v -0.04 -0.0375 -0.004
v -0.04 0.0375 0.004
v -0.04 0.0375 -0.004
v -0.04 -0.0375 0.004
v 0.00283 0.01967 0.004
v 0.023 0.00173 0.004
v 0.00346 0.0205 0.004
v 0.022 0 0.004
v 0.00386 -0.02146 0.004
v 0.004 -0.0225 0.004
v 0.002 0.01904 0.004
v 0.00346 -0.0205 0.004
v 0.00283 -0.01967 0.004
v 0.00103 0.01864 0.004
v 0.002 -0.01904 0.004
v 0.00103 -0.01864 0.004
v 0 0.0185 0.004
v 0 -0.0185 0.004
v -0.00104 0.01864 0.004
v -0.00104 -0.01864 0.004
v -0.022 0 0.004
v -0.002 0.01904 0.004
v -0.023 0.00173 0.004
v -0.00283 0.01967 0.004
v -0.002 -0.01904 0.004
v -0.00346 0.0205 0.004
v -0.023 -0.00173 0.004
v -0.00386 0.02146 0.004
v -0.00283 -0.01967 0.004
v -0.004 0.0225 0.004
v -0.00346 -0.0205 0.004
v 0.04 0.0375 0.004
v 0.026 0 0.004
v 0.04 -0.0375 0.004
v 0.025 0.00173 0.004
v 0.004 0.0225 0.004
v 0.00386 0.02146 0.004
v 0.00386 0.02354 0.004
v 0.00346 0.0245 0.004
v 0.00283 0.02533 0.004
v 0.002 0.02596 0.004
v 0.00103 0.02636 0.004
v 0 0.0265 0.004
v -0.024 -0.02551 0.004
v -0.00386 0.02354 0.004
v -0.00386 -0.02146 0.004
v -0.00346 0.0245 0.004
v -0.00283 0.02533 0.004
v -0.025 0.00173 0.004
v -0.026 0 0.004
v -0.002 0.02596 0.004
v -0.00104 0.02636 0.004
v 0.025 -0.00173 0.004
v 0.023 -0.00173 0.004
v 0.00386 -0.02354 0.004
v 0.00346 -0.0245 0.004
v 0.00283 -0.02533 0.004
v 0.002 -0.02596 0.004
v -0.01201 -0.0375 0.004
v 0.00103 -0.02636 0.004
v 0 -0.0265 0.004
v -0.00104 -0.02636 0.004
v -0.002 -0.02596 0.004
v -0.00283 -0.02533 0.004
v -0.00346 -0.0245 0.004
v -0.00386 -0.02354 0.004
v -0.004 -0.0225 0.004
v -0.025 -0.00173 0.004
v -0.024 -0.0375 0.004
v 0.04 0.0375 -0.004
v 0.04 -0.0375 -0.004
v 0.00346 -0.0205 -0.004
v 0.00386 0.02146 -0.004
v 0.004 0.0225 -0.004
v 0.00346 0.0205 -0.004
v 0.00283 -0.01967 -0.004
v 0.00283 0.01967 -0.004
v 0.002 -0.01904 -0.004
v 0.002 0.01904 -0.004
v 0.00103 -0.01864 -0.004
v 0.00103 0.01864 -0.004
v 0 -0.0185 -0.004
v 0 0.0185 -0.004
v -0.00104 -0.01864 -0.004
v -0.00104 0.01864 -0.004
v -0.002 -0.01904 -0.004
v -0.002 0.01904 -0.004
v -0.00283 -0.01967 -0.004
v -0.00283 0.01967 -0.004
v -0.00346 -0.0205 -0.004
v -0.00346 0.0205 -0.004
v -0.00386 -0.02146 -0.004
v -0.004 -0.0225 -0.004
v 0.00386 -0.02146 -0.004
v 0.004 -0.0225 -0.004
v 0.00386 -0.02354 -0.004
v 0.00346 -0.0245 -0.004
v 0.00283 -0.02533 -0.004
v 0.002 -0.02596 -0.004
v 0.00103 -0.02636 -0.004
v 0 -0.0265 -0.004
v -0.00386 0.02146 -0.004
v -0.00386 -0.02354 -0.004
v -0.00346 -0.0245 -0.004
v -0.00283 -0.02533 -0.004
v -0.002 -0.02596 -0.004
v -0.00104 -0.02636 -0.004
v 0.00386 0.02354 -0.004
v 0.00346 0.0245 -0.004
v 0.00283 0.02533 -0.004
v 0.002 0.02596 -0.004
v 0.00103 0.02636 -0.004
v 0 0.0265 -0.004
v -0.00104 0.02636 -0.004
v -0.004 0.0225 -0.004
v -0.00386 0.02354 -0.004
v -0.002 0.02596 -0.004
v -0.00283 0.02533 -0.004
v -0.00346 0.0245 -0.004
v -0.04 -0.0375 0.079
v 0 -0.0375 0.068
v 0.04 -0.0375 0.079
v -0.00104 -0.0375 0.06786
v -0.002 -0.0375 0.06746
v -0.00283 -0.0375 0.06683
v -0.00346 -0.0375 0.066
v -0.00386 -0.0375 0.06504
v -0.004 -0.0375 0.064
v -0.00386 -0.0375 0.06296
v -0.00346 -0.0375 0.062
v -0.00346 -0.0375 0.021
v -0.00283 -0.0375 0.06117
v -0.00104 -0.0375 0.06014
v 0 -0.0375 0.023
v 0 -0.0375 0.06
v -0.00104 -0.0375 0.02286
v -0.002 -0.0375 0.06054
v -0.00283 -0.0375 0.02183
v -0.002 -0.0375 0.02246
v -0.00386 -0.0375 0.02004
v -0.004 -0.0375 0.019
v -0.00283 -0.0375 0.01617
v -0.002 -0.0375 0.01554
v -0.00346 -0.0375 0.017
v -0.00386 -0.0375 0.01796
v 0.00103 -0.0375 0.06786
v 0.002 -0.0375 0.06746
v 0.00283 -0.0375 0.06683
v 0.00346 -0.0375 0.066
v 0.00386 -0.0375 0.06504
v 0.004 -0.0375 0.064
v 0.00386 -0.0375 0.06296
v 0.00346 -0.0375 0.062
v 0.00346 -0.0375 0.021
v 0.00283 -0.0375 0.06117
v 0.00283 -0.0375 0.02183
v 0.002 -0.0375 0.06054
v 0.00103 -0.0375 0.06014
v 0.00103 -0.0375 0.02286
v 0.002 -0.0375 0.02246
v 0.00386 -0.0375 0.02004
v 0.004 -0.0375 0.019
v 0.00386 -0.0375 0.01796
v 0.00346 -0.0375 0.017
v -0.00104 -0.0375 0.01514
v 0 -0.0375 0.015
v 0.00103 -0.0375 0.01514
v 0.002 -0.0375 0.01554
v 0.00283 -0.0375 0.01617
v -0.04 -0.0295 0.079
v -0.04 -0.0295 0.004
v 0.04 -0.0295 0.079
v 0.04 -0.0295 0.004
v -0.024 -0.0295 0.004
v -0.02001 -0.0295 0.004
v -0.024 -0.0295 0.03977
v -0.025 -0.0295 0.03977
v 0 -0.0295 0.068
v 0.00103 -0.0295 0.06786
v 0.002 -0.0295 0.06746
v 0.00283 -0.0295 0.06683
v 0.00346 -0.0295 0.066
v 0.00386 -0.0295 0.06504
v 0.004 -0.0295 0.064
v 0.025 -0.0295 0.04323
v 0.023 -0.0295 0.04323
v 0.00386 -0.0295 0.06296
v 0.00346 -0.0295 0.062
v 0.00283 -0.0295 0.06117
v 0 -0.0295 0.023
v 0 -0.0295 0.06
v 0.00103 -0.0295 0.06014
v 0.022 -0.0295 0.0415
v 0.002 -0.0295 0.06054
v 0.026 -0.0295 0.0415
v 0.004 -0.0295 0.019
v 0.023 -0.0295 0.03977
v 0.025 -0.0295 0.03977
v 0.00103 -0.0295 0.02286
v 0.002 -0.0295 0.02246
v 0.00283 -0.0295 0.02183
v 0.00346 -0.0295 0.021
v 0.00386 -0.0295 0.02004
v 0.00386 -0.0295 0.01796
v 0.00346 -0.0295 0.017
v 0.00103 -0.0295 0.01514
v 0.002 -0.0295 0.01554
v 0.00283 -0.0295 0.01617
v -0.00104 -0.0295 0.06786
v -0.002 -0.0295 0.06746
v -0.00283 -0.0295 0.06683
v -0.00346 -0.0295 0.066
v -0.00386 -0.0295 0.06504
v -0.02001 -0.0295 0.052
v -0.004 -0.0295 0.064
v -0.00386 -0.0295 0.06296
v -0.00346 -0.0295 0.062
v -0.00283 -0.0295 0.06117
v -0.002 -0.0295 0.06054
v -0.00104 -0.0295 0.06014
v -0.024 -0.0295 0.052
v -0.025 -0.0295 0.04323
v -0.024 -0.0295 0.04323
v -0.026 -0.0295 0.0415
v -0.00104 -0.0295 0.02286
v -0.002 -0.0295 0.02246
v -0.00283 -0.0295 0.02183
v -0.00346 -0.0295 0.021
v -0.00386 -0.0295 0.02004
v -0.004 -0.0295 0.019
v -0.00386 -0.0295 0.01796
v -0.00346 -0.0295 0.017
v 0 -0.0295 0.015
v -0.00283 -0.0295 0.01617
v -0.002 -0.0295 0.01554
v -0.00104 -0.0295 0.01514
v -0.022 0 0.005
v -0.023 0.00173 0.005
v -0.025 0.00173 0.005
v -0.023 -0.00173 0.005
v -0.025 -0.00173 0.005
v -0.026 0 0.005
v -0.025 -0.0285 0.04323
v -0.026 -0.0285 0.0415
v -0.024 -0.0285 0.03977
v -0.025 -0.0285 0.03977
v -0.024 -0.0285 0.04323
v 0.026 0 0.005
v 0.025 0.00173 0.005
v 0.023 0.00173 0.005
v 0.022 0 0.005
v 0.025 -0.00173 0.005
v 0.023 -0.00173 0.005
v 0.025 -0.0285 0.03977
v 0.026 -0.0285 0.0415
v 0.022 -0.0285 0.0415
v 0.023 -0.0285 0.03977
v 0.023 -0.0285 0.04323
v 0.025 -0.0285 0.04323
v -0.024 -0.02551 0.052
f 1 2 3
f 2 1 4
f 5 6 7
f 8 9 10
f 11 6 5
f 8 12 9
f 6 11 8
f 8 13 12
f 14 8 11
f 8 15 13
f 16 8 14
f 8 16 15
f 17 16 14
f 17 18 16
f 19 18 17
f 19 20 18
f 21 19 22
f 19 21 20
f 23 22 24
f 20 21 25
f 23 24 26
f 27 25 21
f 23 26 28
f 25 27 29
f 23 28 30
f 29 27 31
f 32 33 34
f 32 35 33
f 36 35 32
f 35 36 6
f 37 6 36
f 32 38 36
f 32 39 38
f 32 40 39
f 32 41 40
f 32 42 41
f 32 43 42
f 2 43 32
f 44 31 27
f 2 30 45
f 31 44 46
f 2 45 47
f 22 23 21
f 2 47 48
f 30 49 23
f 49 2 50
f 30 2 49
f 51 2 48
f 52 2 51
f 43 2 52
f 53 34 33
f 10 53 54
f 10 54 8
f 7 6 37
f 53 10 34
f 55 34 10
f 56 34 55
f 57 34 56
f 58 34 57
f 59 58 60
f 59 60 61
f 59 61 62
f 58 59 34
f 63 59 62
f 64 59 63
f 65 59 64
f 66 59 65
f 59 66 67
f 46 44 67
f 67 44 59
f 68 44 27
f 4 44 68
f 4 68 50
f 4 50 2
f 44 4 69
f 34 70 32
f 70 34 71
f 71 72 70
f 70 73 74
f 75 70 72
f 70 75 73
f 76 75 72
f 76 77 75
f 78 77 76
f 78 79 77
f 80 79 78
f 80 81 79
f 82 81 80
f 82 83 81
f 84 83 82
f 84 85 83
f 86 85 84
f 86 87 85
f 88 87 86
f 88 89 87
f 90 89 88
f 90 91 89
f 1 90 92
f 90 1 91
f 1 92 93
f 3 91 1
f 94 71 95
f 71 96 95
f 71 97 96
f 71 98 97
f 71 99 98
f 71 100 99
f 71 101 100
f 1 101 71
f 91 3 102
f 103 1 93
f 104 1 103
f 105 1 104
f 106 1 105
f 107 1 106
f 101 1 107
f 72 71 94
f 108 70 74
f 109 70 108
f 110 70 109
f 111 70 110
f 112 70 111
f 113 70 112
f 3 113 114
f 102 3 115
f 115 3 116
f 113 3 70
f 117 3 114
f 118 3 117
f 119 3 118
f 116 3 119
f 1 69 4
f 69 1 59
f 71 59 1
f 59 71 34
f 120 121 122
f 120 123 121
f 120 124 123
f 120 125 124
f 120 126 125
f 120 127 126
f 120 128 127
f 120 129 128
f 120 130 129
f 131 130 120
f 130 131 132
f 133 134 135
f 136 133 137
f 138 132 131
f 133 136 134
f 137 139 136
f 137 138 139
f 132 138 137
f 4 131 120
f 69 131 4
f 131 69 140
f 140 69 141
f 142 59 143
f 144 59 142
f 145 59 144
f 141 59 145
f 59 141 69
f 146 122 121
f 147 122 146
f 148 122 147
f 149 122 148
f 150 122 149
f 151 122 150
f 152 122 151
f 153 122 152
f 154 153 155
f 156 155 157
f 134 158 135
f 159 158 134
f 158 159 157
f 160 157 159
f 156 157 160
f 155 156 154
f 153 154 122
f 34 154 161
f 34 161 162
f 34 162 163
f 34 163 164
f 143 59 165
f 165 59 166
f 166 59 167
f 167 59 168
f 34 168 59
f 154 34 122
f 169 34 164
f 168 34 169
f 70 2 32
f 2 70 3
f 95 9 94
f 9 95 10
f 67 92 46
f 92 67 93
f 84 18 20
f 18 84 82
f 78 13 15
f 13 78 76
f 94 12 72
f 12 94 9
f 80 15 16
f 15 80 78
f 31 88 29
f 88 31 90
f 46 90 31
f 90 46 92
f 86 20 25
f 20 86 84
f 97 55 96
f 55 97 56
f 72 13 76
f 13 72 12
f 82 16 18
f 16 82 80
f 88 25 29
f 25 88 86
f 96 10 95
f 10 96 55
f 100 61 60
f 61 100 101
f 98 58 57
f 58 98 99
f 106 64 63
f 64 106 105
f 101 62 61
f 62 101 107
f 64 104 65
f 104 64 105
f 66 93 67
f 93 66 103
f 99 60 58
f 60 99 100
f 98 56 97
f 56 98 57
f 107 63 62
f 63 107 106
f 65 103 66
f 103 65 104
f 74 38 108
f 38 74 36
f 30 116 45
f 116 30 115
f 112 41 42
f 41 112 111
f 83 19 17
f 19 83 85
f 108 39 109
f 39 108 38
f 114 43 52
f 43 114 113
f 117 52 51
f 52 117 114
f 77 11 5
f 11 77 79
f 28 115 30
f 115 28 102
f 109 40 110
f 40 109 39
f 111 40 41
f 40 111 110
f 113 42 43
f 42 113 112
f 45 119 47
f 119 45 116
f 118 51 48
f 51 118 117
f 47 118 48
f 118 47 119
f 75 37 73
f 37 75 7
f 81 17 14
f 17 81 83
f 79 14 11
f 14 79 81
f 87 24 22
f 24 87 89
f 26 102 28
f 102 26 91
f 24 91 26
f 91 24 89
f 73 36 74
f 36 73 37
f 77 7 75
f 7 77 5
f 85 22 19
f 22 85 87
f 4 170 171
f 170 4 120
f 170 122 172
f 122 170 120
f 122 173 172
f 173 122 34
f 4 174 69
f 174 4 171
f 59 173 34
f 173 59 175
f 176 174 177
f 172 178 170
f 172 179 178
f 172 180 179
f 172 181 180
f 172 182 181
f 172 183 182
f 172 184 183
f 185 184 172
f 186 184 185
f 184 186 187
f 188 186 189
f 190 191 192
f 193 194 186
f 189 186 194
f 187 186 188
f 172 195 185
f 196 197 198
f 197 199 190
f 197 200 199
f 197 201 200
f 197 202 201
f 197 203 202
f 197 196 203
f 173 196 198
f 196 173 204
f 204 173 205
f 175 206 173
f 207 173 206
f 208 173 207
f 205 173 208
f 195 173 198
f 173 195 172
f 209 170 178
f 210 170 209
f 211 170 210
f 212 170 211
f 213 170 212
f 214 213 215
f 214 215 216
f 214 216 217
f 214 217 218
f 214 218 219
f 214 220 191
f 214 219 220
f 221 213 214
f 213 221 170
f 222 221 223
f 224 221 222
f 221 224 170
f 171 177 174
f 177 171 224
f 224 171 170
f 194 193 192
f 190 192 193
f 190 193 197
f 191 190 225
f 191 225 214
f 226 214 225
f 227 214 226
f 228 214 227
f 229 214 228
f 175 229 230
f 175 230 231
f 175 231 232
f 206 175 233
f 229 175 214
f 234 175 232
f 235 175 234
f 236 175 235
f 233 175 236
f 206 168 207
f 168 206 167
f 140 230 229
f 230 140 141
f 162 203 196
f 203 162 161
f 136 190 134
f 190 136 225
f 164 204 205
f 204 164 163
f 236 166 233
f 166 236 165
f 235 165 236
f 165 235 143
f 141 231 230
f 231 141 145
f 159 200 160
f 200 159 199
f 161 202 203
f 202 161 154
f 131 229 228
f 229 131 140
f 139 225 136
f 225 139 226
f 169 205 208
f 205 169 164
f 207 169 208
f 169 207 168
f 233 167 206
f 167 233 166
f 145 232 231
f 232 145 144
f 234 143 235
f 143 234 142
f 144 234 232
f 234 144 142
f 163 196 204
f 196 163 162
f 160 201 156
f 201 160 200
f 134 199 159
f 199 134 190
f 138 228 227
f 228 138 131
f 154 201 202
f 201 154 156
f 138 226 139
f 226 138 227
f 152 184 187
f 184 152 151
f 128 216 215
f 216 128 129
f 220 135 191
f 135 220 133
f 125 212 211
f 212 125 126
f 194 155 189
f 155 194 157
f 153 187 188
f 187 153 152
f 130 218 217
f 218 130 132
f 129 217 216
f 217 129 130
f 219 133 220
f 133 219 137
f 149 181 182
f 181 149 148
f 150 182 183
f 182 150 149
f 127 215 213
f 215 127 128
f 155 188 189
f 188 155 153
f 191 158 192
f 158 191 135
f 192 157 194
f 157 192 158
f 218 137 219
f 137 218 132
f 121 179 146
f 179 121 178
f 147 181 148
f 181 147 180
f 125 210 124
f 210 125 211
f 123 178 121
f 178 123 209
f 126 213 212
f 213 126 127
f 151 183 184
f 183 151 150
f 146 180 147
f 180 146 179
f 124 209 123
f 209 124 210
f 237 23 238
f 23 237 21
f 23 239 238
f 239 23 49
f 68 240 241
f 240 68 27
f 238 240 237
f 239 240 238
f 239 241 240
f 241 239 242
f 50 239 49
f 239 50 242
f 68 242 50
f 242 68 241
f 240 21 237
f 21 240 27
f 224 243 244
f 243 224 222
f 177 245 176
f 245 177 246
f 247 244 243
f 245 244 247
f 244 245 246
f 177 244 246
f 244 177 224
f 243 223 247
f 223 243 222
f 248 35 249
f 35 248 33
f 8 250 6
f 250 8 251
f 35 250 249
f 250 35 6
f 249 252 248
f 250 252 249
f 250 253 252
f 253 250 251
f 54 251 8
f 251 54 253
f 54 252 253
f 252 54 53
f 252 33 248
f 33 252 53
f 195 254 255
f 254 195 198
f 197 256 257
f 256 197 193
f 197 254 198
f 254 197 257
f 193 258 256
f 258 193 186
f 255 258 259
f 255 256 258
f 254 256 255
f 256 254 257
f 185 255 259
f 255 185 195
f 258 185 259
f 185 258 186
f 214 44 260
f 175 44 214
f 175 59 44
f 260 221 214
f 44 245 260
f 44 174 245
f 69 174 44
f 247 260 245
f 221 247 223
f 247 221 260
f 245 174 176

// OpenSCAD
// === L-Bracket (Weathered Metal) ===
// All units in meters. Centered on origin.

// --- Key Parameters ---
width        = 0.08;   // overall width of the bracket (X)
arm_length   = 0.075;  // length of each arm (Y / Z)
thickness    = 0.008;  // material thickness
depth        = 0.08;   // depth of bracket into scene (Z / X cross-section)
hole_radius  = 0.004;  // mounting hole radius
hole_inset   = 0.015;  // hole centre distance from each end

// --- Derived ---
// Vertical arm: stands along +Y from origin
// Horizontal arm: extends along +Z from origin
// The bracket corner sits at origin; object is centred by offsetting by depth/2 in X

module l_bracket() {
    translate([-depth/2, -arm_length/2, -thickness/2])
    union() {
        // --- Vertical arm (rises in Y) ---
        difference() {
            cube([depth, arm_length, thickness]);
            // Two mounting holes on vertical arm
            translate([depth/2, hole_inset, -0.001])
                cylinder(h = thickness + 0.002, r = hole_radius, $fn = 24);
            translate([depth/2, arm_length - hole_inset, -0.001])
                cylinder(h = thickness + 0.002, r = hole_radius, $fn = 24);
        }

        // --- Horizontal arm (extends in Z, shares corner with vertical arm) ---
        translate([0, 0, thickness])
        difference() {
            cube([depth, thickness, arm_length]);
            // Two mounting holes on horizontal arm
            translate([depth/2, -0.001, hole_inset])
                rotate([-90, 0, 0])
                    cylinder(h = thickness + 0.002, r = hole_radius, $fn = 24);
            translate([depth/2, -0.001, arm_length - hole_inset])
                rotate([-90, 0, 0])
                    cylinder(h = thickness + 0.002, r = hole_radius, $fn = 24);
        }

        // --- Gusset / fillet block at the inner corner for rigidity ---
        translate([depth * 0.2, 0, thickness])
            rotate([0, 0, 0])
            linear_extrude(height = depth * 0.6)
            polygon(points = [
                [0, 0],
                [thickness * 1.5, 0],
                [0, thickness * 1.5]
            ]);

        // --- Weathering detail: surface bolt heads (raised nubs) ---
        for (bx = [depth * 0.2, depth * 0.8]) {
            // bolt on vertical face
            translate([bx, arm_length * 0.5, thickness])
                cylinder(h = 0.001, r = 0.002, $fn = 6);
            // bolt on horizontal face
            translate([bx, thickness, thickness + arm_length * 0.5])
                rotate([-90, 0, 0])
                    cylinder(h = 0.001, r = 0.002, $fn = 6);
        }
    }
}

l_bracket();
